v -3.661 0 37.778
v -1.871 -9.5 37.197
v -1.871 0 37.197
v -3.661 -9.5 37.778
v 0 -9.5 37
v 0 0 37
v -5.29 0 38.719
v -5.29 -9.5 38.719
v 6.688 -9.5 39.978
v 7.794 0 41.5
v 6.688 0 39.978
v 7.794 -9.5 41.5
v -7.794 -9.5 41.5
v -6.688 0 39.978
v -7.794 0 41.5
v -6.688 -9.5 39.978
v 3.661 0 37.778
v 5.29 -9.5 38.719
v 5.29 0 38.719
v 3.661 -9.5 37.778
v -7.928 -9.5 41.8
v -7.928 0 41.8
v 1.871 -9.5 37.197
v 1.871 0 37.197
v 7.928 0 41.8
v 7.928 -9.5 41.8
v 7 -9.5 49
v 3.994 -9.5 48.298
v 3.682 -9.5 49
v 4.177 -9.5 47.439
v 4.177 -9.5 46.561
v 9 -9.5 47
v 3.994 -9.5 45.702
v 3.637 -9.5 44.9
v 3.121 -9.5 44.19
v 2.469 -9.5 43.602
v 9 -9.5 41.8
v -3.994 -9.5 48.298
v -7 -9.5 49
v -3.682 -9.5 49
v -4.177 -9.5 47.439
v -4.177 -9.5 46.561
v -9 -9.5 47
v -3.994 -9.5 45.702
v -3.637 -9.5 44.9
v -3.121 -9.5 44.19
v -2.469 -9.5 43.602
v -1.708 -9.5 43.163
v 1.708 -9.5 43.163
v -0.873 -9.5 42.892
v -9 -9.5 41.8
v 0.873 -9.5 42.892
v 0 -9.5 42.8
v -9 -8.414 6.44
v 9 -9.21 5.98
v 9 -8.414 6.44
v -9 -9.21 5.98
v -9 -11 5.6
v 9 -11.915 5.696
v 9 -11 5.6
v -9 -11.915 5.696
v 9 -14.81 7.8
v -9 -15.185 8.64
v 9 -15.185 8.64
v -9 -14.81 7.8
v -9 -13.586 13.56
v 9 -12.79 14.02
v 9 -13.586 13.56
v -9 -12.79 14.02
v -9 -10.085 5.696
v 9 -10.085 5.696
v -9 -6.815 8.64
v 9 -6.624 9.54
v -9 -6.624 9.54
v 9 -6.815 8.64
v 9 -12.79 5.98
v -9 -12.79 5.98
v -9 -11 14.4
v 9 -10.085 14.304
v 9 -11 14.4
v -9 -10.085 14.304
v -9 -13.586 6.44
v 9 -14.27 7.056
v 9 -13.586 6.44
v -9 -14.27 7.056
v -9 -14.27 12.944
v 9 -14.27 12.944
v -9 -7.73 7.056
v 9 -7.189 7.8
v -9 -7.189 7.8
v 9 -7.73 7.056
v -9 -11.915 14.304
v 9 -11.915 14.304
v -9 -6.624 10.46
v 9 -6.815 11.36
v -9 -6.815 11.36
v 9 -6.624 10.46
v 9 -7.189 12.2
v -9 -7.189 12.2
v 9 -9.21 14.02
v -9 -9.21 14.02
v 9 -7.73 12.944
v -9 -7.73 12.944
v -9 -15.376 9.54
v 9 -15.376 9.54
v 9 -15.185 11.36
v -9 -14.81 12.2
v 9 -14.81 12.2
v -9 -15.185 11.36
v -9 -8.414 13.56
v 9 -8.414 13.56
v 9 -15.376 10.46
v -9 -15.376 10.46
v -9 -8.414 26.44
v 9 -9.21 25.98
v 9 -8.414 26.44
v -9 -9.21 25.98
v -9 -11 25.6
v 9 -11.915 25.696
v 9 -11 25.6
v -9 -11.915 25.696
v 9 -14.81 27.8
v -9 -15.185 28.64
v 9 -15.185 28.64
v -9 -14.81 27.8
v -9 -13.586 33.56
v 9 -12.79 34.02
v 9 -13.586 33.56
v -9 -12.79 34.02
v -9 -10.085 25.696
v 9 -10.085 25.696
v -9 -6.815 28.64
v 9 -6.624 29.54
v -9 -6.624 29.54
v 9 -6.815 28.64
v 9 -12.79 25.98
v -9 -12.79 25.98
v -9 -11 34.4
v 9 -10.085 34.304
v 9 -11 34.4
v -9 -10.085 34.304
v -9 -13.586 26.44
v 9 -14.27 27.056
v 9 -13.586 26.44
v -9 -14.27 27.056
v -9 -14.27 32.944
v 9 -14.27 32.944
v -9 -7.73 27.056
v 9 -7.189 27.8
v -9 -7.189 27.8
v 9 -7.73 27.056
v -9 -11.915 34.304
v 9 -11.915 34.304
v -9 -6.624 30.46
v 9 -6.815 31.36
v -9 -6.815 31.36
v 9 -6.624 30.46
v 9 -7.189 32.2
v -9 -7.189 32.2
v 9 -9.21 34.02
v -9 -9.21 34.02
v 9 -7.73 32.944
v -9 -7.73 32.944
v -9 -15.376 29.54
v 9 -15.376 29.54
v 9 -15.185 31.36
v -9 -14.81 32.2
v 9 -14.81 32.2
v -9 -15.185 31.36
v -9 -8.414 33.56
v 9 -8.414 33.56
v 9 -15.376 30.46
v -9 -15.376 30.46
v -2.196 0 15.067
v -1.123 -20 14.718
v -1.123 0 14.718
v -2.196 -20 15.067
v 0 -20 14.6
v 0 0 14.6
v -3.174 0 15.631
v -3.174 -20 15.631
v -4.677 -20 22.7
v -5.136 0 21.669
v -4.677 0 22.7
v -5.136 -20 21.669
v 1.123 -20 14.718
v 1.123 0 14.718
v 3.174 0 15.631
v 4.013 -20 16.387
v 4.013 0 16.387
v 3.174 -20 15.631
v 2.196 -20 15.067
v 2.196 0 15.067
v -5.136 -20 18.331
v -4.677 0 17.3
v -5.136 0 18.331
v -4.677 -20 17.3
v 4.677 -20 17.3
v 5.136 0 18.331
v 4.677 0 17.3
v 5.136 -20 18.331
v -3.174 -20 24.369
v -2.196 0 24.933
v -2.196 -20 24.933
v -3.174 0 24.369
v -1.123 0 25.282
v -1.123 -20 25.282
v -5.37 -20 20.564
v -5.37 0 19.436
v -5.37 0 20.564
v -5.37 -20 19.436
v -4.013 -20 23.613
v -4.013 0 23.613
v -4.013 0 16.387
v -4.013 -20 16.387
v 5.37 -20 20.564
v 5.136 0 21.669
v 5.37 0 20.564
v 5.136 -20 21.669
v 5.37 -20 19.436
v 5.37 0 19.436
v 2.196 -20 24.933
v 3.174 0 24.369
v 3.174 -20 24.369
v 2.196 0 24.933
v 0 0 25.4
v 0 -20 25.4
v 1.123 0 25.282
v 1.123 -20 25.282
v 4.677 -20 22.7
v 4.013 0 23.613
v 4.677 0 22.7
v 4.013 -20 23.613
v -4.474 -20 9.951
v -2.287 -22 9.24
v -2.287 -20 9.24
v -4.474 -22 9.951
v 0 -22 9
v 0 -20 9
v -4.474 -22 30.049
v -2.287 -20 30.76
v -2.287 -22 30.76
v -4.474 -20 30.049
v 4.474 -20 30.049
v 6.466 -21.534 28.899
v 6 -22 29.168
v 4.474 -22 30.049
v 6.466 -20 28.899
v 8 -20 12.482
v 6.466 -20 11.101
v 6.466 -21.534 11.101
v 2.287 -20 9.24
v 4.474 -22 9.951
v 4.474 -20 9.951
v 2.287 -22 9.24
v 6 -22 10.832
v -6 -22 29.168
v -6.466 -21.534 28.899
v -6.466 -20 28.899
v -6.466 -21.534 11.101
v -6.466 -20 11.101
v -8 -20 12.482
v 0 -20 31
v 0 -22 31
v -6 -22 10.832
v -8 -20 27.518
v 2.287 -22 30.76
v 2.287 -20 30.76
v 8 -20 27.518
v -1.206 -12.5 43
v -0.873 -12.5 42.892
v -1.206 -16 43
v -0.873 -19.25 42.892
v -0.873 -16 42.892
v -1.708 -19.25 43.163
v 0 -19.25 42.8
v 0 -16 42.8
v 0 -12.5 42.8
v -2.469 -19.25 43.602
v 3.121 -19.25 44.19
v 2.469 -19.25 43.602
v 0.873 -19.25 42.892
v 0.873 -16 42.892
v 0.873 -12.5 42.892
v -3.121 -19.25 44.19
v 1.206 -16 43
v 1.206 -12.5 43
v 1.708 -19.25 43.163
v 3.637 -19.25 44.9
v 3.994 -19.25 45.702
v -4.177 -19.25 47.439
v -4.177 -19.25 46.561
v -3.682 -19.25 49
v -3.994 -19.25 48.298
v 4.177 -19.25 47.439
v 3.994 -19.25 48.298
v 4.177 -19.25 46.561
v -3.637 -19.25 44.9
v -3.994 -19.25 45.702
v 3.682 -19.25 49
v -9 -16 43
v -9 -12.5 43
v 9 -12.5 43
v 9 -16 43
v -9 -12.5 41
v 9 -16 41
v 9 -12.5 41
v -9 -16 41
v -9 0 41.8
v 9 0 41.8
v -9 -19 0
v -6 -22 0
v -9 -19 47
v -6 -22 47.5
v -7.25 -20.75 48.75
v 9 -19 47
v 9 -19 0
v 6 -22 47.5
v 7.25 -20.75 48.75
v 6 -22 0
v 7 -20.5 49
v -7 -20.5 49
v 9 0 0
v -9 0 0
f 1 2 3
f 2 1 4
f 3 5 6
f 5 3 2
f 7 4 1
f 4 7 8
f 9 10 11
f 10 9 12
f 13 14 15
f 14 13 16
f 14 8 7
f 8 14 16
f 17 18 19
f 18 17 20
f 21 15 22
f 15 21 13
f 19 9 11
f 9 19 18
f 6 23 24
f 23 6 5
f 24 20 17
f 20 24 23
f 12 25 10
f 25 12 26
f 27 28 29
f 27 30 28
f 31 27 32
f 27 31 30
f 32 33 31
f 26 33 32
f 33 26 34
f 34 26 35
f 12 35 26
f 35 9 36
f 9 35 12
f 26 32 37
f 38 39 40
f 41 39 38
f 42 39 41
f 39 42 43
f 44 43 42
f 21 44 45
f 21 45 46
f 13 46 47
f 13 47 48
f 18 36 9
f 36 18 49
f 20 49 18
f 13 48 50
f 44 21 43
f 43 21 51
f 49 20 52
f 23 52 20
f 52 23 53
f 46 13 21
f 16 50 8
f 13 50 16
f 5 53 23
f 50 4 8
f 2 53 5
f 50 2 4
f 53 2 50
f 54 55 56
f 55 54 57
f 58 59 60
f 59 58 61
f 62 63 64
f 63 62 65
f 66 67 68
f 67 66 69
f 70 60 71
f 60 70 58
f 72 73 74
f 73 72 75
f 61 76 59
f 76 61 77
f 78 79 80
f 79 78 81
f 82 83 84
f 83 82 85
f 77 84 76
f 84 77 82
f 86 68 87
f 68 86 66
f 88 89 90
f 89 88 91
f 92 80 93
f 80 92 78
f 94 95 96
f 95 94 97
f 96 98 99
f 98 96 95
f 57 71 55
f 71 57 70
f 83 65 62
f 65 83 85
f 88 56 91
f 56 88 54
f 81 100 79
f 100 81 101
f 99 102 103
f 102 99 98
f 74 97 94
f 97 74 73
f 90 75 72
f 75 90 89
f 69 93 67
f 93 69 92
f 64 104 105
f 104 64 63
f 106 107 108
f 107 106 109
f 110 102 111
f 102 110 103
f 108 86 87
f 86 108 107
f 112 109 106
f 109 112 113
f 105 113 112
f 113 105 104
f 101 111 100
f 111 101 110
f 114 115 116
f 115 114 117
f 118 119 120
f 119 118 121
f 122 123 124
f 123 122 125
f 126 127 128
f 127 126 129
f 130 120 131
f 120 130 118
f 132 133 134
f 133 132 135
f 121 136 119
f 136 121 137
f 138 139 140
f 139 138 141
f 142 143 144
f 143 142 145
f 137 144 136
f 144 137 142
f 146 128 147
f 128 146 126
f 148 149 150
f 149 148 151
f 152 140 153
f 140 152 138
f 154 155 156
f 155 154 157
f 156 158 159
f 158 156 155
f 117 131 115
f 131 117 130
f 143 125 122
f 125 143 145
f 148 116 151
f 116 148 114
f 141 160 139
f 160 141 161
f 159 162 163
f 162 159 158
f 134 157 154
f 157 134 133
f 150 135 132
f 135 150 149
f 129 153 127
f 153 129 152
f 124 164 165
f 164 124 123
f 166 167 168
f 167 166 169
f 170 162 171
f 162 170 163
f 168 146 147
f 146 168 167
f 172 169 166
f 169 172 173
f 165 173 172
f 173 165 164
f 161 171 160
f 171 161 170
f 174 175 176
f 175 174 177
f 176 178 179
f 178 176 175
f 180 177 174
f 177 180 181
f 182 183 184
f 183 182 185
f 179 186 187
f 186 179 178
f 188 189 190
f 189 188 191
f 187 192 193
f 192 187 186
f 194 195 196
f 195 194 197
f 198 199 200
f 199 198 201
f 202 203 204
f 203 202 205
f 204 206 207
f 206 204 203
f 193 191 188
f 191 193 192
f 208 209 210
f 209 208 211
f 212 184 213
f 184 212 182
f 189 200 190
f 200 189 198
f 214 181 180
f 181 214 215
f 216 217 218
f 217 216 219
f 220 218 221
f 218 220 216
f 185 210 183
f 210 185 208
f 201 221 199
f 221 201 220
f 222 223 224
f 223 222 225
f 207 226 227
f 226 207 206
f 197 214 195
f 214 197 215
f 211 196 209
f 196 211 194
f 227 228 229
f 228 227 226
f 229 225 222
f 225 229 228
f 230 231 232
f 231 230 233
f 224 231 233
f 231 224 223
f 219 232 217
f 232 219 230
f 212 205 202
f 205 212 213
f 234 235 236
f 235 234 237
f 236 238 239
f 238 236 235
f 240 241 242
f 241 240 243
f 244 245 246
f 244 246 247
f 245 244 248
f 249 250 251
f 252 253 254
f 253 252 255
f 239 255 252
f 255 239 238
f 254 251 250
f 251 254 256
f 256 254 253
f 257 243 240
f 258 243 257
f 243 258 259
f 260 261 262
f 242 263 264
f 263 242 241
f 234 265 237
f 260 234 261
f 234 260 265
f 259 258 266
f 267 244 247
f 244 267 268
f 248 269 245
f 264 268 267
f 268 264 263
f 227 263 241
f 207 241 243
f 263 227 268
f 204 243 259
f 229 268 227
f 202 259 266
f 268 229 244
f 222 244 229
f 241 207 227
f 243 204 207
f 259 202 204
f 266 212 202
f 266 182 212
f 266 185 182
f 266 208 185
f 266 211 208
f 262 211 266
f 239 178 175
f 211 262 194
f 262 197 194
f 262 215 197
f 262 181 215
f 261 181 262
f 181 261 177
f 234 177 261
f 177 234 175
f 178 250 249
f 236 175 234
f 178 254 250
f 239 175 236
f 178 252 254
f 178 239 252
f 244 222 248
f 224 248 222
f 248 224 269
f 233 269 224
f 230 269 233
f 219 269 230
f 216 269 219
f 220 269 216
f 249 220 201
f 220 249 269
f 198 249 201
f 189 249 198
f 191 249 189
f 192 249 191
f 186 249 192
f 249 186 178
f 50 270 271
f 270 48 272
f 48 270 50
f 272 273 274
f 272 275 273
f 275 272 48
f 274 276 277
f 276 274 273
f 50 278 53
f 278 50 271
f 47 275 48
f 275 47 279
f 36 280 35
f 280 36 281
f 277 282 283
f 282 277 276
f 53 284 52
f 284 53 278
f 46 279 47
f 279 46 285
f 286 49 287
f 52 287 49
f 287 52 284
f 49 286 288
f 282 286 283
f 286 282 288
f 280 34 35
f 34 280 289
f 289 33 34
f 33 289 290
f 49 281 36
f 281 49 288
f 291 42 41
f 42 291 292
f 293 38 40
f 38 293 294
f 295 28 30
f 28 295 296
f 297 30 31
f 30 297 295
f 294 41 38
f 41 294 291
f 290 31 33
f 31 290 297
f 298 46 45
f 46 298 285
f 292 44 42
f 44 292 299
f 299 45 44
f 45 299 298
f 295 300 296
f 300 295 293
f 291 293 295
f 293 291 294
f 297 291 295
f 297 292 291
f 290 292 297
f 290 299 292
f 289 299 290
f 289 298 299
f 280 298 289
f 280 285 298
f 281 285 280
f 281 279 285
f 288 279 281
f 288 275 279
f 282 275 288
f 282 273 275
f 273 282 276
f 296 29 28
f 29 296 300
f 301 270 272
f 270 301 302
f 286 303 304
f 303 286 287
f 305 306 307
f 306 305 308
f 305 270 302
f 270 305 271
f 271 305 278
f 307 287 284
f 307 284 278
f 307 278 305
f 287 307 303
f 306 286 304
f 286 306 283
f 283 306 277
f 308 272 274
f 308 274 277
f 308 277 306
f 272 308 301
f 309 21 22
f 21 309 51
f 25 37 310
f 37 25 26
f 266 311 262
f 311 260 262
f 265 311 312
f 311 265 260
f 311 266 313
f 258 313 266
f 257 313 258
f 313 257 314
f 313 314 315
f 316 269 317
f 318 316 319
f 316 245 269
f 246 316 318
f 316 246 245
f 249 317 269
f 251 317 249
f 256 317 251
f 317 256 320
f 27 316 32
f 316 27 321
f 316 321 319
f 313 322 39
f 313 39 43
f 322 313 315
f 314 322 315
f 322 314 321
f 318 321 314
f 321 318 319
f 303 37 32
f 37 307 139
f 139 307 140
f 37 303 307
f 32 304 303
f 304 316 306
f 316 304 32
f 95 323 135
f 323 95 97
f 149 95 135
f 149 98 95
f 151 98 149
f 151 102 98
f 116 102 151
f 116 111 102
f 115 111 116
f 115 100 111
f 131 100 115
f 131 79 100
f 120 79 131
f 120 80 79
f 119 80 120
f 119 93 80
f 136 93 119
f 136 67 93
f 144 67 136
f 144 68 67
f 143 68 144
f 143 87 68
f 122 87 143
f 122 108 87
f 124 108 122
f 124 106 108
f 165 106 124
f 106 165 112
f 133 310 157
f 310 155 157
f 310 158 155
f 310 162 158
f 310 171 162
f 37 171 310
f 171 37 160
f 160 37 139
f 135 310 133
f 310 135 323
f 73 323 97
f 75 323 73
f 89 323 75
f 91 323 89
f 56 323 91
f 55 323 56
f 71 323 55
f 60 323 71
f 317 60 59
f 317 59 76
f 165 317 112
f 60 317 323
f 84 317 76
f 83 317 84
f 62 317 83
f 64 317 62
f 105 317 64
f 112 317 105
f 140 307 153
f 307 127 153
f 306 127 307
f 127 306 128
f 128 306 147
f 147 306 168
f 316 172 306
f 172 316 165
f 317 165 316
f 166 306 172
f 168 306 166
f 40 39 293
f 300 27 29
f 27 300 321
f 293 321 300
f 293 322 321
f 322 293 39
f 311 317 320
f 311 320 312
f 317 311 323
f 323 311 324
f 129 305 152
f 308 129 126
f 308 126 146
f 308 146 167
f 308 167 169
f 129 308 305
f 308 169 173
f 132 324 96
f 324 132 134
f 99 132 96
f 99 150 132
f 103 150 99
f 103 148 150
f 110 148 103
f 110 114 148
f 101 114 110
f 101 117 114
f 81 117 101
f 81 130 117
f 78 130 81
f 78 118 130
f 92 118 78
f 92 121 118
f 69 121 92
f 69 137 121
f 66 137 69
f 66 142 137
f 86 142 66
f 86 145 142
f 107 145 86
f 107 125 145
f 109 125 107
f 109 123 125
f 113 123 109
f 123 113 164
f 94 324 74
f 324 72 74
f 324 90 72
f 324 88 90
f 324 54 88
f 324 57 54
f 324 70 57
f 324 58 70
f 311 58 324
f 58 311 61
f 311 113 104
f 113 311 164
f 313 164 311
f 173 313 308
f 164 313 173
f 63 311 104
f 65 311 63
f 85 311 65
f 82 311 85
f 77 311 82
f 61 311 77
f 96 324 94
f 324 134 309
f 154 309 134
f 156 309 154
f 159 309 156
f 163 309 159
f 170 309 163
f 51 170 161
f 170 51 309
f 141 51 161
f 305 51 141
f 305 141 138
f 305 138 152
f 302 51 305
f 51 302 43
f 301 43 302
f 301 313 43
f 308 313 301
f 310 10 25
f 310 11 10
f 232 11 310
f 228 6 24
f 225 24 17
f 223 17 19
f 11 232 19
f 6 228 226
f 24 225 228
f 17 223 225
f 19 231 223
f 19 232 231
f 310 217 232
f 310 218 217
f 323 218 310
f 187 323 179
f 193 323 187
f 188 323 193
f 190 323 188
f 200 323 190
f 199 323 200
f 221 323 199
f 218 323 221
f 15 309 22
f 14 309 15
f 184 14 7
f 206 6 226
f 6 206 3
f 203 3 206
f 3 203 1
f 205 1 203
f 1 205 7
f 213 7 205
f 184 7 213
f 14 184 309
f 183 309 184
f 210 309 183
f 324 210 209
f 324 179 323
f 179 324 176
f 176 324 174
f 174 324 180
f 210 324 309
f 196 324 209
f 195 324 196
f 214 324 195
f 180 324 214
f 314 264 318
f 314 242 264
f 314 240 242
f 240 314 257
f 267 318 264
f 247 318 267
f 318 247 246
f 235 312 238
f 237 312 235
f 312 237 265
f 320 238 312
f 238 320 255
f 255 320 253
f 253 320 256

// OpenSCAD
// PRUSA iteration3
// Y frame corners
// GNU GPL v3
// Josef Průša <iam@josefprusa.cz> and contributors
// http://www.reprap.org/wiki/Prusa_Mendel
// http://prusamendel.org


module corner_base(){
 translate([-9,-11,0])cube([18,22,49]);
}

module corner_holes(){
 translate([-11,-11,0]){
  // Bottom hole
  translate([0,11,10]) rotate([0,90,0]) translate([0,0,-5]) cylinder(h = 270, r=4.4, $fn=30);
  // Top hole
  translate([0,11,30]) rotate([0,90,0]) translate([0,0,-5]) cylinder(h = 270, r=4.4, $fn=30);
  // Middle hole
  translate([11,0,20]) rotate([0,0,90]) rotate([0,90,0]) translate([0,0,-5]) cylinder(h = 270, r=5.4, $fn=30);

  // Washer hole
  translate([11,-3,20]) rotate([0,0,90]) rotate([0,90,0]) translate([0,0,-5]) cylinder(h = 10, r=11, $fn=30);

  // Top smooth rod insert
  // Smooth rod place
  translate([11,2.75,47]) rotate([0,90,90]) cylinder(h = 9.8, r=4.2, $fn=30);
  // Ziptie
  translate([-5,6,41])  cube([30,3.5,2]);

  // LM8UU keepout
  difference(){
    translate([11,12.5,46]) rotate([0,90,90]) cylinder(h = 270, r=9, $fn=30);
    translate([21,12.5,62]) rotate([0,90,90]) cube([20,20,30]);
  } 
  translate([21,12.5,62-0.2]) rotate([0,90,90]) cube([20,20,20]);
 }
}

module corner_fancy(){
 // Side corner cutouts
  translate([-8,-9,0]) rotate([0,0,-45-180]) translate([-15,0,-1]) cube([30,30,51]);
  translate([8,-9,0]) rotate([0,0,45-180]) translate([-15,0,-1]) cube([30,30,51]);
 // Top corner cutouts
  translate([7,0,49]) rotate([0,45,0]) translate([-15,-15,0]) cube([30,30,30]);
  translate([-7,0,49]) rotate([0,-45,0]) translate([-15,-15,0]) cube([30,30,30]);
  rotate([0,0,90]){
   translate([-9.5,0,49]) rotate([0,-45,0]) translate([-15,-15,0]) cube([30,30,30]);
  }
}


// Final part
module corner(){
 // Rotate the part for better printing
 translate([0,0,11]) rotate([-90,0,0]) difference(){
  corner_base();
  corner_holes();
  corner_fancy();
 }
}

rotate([90,0,0]) corner();
